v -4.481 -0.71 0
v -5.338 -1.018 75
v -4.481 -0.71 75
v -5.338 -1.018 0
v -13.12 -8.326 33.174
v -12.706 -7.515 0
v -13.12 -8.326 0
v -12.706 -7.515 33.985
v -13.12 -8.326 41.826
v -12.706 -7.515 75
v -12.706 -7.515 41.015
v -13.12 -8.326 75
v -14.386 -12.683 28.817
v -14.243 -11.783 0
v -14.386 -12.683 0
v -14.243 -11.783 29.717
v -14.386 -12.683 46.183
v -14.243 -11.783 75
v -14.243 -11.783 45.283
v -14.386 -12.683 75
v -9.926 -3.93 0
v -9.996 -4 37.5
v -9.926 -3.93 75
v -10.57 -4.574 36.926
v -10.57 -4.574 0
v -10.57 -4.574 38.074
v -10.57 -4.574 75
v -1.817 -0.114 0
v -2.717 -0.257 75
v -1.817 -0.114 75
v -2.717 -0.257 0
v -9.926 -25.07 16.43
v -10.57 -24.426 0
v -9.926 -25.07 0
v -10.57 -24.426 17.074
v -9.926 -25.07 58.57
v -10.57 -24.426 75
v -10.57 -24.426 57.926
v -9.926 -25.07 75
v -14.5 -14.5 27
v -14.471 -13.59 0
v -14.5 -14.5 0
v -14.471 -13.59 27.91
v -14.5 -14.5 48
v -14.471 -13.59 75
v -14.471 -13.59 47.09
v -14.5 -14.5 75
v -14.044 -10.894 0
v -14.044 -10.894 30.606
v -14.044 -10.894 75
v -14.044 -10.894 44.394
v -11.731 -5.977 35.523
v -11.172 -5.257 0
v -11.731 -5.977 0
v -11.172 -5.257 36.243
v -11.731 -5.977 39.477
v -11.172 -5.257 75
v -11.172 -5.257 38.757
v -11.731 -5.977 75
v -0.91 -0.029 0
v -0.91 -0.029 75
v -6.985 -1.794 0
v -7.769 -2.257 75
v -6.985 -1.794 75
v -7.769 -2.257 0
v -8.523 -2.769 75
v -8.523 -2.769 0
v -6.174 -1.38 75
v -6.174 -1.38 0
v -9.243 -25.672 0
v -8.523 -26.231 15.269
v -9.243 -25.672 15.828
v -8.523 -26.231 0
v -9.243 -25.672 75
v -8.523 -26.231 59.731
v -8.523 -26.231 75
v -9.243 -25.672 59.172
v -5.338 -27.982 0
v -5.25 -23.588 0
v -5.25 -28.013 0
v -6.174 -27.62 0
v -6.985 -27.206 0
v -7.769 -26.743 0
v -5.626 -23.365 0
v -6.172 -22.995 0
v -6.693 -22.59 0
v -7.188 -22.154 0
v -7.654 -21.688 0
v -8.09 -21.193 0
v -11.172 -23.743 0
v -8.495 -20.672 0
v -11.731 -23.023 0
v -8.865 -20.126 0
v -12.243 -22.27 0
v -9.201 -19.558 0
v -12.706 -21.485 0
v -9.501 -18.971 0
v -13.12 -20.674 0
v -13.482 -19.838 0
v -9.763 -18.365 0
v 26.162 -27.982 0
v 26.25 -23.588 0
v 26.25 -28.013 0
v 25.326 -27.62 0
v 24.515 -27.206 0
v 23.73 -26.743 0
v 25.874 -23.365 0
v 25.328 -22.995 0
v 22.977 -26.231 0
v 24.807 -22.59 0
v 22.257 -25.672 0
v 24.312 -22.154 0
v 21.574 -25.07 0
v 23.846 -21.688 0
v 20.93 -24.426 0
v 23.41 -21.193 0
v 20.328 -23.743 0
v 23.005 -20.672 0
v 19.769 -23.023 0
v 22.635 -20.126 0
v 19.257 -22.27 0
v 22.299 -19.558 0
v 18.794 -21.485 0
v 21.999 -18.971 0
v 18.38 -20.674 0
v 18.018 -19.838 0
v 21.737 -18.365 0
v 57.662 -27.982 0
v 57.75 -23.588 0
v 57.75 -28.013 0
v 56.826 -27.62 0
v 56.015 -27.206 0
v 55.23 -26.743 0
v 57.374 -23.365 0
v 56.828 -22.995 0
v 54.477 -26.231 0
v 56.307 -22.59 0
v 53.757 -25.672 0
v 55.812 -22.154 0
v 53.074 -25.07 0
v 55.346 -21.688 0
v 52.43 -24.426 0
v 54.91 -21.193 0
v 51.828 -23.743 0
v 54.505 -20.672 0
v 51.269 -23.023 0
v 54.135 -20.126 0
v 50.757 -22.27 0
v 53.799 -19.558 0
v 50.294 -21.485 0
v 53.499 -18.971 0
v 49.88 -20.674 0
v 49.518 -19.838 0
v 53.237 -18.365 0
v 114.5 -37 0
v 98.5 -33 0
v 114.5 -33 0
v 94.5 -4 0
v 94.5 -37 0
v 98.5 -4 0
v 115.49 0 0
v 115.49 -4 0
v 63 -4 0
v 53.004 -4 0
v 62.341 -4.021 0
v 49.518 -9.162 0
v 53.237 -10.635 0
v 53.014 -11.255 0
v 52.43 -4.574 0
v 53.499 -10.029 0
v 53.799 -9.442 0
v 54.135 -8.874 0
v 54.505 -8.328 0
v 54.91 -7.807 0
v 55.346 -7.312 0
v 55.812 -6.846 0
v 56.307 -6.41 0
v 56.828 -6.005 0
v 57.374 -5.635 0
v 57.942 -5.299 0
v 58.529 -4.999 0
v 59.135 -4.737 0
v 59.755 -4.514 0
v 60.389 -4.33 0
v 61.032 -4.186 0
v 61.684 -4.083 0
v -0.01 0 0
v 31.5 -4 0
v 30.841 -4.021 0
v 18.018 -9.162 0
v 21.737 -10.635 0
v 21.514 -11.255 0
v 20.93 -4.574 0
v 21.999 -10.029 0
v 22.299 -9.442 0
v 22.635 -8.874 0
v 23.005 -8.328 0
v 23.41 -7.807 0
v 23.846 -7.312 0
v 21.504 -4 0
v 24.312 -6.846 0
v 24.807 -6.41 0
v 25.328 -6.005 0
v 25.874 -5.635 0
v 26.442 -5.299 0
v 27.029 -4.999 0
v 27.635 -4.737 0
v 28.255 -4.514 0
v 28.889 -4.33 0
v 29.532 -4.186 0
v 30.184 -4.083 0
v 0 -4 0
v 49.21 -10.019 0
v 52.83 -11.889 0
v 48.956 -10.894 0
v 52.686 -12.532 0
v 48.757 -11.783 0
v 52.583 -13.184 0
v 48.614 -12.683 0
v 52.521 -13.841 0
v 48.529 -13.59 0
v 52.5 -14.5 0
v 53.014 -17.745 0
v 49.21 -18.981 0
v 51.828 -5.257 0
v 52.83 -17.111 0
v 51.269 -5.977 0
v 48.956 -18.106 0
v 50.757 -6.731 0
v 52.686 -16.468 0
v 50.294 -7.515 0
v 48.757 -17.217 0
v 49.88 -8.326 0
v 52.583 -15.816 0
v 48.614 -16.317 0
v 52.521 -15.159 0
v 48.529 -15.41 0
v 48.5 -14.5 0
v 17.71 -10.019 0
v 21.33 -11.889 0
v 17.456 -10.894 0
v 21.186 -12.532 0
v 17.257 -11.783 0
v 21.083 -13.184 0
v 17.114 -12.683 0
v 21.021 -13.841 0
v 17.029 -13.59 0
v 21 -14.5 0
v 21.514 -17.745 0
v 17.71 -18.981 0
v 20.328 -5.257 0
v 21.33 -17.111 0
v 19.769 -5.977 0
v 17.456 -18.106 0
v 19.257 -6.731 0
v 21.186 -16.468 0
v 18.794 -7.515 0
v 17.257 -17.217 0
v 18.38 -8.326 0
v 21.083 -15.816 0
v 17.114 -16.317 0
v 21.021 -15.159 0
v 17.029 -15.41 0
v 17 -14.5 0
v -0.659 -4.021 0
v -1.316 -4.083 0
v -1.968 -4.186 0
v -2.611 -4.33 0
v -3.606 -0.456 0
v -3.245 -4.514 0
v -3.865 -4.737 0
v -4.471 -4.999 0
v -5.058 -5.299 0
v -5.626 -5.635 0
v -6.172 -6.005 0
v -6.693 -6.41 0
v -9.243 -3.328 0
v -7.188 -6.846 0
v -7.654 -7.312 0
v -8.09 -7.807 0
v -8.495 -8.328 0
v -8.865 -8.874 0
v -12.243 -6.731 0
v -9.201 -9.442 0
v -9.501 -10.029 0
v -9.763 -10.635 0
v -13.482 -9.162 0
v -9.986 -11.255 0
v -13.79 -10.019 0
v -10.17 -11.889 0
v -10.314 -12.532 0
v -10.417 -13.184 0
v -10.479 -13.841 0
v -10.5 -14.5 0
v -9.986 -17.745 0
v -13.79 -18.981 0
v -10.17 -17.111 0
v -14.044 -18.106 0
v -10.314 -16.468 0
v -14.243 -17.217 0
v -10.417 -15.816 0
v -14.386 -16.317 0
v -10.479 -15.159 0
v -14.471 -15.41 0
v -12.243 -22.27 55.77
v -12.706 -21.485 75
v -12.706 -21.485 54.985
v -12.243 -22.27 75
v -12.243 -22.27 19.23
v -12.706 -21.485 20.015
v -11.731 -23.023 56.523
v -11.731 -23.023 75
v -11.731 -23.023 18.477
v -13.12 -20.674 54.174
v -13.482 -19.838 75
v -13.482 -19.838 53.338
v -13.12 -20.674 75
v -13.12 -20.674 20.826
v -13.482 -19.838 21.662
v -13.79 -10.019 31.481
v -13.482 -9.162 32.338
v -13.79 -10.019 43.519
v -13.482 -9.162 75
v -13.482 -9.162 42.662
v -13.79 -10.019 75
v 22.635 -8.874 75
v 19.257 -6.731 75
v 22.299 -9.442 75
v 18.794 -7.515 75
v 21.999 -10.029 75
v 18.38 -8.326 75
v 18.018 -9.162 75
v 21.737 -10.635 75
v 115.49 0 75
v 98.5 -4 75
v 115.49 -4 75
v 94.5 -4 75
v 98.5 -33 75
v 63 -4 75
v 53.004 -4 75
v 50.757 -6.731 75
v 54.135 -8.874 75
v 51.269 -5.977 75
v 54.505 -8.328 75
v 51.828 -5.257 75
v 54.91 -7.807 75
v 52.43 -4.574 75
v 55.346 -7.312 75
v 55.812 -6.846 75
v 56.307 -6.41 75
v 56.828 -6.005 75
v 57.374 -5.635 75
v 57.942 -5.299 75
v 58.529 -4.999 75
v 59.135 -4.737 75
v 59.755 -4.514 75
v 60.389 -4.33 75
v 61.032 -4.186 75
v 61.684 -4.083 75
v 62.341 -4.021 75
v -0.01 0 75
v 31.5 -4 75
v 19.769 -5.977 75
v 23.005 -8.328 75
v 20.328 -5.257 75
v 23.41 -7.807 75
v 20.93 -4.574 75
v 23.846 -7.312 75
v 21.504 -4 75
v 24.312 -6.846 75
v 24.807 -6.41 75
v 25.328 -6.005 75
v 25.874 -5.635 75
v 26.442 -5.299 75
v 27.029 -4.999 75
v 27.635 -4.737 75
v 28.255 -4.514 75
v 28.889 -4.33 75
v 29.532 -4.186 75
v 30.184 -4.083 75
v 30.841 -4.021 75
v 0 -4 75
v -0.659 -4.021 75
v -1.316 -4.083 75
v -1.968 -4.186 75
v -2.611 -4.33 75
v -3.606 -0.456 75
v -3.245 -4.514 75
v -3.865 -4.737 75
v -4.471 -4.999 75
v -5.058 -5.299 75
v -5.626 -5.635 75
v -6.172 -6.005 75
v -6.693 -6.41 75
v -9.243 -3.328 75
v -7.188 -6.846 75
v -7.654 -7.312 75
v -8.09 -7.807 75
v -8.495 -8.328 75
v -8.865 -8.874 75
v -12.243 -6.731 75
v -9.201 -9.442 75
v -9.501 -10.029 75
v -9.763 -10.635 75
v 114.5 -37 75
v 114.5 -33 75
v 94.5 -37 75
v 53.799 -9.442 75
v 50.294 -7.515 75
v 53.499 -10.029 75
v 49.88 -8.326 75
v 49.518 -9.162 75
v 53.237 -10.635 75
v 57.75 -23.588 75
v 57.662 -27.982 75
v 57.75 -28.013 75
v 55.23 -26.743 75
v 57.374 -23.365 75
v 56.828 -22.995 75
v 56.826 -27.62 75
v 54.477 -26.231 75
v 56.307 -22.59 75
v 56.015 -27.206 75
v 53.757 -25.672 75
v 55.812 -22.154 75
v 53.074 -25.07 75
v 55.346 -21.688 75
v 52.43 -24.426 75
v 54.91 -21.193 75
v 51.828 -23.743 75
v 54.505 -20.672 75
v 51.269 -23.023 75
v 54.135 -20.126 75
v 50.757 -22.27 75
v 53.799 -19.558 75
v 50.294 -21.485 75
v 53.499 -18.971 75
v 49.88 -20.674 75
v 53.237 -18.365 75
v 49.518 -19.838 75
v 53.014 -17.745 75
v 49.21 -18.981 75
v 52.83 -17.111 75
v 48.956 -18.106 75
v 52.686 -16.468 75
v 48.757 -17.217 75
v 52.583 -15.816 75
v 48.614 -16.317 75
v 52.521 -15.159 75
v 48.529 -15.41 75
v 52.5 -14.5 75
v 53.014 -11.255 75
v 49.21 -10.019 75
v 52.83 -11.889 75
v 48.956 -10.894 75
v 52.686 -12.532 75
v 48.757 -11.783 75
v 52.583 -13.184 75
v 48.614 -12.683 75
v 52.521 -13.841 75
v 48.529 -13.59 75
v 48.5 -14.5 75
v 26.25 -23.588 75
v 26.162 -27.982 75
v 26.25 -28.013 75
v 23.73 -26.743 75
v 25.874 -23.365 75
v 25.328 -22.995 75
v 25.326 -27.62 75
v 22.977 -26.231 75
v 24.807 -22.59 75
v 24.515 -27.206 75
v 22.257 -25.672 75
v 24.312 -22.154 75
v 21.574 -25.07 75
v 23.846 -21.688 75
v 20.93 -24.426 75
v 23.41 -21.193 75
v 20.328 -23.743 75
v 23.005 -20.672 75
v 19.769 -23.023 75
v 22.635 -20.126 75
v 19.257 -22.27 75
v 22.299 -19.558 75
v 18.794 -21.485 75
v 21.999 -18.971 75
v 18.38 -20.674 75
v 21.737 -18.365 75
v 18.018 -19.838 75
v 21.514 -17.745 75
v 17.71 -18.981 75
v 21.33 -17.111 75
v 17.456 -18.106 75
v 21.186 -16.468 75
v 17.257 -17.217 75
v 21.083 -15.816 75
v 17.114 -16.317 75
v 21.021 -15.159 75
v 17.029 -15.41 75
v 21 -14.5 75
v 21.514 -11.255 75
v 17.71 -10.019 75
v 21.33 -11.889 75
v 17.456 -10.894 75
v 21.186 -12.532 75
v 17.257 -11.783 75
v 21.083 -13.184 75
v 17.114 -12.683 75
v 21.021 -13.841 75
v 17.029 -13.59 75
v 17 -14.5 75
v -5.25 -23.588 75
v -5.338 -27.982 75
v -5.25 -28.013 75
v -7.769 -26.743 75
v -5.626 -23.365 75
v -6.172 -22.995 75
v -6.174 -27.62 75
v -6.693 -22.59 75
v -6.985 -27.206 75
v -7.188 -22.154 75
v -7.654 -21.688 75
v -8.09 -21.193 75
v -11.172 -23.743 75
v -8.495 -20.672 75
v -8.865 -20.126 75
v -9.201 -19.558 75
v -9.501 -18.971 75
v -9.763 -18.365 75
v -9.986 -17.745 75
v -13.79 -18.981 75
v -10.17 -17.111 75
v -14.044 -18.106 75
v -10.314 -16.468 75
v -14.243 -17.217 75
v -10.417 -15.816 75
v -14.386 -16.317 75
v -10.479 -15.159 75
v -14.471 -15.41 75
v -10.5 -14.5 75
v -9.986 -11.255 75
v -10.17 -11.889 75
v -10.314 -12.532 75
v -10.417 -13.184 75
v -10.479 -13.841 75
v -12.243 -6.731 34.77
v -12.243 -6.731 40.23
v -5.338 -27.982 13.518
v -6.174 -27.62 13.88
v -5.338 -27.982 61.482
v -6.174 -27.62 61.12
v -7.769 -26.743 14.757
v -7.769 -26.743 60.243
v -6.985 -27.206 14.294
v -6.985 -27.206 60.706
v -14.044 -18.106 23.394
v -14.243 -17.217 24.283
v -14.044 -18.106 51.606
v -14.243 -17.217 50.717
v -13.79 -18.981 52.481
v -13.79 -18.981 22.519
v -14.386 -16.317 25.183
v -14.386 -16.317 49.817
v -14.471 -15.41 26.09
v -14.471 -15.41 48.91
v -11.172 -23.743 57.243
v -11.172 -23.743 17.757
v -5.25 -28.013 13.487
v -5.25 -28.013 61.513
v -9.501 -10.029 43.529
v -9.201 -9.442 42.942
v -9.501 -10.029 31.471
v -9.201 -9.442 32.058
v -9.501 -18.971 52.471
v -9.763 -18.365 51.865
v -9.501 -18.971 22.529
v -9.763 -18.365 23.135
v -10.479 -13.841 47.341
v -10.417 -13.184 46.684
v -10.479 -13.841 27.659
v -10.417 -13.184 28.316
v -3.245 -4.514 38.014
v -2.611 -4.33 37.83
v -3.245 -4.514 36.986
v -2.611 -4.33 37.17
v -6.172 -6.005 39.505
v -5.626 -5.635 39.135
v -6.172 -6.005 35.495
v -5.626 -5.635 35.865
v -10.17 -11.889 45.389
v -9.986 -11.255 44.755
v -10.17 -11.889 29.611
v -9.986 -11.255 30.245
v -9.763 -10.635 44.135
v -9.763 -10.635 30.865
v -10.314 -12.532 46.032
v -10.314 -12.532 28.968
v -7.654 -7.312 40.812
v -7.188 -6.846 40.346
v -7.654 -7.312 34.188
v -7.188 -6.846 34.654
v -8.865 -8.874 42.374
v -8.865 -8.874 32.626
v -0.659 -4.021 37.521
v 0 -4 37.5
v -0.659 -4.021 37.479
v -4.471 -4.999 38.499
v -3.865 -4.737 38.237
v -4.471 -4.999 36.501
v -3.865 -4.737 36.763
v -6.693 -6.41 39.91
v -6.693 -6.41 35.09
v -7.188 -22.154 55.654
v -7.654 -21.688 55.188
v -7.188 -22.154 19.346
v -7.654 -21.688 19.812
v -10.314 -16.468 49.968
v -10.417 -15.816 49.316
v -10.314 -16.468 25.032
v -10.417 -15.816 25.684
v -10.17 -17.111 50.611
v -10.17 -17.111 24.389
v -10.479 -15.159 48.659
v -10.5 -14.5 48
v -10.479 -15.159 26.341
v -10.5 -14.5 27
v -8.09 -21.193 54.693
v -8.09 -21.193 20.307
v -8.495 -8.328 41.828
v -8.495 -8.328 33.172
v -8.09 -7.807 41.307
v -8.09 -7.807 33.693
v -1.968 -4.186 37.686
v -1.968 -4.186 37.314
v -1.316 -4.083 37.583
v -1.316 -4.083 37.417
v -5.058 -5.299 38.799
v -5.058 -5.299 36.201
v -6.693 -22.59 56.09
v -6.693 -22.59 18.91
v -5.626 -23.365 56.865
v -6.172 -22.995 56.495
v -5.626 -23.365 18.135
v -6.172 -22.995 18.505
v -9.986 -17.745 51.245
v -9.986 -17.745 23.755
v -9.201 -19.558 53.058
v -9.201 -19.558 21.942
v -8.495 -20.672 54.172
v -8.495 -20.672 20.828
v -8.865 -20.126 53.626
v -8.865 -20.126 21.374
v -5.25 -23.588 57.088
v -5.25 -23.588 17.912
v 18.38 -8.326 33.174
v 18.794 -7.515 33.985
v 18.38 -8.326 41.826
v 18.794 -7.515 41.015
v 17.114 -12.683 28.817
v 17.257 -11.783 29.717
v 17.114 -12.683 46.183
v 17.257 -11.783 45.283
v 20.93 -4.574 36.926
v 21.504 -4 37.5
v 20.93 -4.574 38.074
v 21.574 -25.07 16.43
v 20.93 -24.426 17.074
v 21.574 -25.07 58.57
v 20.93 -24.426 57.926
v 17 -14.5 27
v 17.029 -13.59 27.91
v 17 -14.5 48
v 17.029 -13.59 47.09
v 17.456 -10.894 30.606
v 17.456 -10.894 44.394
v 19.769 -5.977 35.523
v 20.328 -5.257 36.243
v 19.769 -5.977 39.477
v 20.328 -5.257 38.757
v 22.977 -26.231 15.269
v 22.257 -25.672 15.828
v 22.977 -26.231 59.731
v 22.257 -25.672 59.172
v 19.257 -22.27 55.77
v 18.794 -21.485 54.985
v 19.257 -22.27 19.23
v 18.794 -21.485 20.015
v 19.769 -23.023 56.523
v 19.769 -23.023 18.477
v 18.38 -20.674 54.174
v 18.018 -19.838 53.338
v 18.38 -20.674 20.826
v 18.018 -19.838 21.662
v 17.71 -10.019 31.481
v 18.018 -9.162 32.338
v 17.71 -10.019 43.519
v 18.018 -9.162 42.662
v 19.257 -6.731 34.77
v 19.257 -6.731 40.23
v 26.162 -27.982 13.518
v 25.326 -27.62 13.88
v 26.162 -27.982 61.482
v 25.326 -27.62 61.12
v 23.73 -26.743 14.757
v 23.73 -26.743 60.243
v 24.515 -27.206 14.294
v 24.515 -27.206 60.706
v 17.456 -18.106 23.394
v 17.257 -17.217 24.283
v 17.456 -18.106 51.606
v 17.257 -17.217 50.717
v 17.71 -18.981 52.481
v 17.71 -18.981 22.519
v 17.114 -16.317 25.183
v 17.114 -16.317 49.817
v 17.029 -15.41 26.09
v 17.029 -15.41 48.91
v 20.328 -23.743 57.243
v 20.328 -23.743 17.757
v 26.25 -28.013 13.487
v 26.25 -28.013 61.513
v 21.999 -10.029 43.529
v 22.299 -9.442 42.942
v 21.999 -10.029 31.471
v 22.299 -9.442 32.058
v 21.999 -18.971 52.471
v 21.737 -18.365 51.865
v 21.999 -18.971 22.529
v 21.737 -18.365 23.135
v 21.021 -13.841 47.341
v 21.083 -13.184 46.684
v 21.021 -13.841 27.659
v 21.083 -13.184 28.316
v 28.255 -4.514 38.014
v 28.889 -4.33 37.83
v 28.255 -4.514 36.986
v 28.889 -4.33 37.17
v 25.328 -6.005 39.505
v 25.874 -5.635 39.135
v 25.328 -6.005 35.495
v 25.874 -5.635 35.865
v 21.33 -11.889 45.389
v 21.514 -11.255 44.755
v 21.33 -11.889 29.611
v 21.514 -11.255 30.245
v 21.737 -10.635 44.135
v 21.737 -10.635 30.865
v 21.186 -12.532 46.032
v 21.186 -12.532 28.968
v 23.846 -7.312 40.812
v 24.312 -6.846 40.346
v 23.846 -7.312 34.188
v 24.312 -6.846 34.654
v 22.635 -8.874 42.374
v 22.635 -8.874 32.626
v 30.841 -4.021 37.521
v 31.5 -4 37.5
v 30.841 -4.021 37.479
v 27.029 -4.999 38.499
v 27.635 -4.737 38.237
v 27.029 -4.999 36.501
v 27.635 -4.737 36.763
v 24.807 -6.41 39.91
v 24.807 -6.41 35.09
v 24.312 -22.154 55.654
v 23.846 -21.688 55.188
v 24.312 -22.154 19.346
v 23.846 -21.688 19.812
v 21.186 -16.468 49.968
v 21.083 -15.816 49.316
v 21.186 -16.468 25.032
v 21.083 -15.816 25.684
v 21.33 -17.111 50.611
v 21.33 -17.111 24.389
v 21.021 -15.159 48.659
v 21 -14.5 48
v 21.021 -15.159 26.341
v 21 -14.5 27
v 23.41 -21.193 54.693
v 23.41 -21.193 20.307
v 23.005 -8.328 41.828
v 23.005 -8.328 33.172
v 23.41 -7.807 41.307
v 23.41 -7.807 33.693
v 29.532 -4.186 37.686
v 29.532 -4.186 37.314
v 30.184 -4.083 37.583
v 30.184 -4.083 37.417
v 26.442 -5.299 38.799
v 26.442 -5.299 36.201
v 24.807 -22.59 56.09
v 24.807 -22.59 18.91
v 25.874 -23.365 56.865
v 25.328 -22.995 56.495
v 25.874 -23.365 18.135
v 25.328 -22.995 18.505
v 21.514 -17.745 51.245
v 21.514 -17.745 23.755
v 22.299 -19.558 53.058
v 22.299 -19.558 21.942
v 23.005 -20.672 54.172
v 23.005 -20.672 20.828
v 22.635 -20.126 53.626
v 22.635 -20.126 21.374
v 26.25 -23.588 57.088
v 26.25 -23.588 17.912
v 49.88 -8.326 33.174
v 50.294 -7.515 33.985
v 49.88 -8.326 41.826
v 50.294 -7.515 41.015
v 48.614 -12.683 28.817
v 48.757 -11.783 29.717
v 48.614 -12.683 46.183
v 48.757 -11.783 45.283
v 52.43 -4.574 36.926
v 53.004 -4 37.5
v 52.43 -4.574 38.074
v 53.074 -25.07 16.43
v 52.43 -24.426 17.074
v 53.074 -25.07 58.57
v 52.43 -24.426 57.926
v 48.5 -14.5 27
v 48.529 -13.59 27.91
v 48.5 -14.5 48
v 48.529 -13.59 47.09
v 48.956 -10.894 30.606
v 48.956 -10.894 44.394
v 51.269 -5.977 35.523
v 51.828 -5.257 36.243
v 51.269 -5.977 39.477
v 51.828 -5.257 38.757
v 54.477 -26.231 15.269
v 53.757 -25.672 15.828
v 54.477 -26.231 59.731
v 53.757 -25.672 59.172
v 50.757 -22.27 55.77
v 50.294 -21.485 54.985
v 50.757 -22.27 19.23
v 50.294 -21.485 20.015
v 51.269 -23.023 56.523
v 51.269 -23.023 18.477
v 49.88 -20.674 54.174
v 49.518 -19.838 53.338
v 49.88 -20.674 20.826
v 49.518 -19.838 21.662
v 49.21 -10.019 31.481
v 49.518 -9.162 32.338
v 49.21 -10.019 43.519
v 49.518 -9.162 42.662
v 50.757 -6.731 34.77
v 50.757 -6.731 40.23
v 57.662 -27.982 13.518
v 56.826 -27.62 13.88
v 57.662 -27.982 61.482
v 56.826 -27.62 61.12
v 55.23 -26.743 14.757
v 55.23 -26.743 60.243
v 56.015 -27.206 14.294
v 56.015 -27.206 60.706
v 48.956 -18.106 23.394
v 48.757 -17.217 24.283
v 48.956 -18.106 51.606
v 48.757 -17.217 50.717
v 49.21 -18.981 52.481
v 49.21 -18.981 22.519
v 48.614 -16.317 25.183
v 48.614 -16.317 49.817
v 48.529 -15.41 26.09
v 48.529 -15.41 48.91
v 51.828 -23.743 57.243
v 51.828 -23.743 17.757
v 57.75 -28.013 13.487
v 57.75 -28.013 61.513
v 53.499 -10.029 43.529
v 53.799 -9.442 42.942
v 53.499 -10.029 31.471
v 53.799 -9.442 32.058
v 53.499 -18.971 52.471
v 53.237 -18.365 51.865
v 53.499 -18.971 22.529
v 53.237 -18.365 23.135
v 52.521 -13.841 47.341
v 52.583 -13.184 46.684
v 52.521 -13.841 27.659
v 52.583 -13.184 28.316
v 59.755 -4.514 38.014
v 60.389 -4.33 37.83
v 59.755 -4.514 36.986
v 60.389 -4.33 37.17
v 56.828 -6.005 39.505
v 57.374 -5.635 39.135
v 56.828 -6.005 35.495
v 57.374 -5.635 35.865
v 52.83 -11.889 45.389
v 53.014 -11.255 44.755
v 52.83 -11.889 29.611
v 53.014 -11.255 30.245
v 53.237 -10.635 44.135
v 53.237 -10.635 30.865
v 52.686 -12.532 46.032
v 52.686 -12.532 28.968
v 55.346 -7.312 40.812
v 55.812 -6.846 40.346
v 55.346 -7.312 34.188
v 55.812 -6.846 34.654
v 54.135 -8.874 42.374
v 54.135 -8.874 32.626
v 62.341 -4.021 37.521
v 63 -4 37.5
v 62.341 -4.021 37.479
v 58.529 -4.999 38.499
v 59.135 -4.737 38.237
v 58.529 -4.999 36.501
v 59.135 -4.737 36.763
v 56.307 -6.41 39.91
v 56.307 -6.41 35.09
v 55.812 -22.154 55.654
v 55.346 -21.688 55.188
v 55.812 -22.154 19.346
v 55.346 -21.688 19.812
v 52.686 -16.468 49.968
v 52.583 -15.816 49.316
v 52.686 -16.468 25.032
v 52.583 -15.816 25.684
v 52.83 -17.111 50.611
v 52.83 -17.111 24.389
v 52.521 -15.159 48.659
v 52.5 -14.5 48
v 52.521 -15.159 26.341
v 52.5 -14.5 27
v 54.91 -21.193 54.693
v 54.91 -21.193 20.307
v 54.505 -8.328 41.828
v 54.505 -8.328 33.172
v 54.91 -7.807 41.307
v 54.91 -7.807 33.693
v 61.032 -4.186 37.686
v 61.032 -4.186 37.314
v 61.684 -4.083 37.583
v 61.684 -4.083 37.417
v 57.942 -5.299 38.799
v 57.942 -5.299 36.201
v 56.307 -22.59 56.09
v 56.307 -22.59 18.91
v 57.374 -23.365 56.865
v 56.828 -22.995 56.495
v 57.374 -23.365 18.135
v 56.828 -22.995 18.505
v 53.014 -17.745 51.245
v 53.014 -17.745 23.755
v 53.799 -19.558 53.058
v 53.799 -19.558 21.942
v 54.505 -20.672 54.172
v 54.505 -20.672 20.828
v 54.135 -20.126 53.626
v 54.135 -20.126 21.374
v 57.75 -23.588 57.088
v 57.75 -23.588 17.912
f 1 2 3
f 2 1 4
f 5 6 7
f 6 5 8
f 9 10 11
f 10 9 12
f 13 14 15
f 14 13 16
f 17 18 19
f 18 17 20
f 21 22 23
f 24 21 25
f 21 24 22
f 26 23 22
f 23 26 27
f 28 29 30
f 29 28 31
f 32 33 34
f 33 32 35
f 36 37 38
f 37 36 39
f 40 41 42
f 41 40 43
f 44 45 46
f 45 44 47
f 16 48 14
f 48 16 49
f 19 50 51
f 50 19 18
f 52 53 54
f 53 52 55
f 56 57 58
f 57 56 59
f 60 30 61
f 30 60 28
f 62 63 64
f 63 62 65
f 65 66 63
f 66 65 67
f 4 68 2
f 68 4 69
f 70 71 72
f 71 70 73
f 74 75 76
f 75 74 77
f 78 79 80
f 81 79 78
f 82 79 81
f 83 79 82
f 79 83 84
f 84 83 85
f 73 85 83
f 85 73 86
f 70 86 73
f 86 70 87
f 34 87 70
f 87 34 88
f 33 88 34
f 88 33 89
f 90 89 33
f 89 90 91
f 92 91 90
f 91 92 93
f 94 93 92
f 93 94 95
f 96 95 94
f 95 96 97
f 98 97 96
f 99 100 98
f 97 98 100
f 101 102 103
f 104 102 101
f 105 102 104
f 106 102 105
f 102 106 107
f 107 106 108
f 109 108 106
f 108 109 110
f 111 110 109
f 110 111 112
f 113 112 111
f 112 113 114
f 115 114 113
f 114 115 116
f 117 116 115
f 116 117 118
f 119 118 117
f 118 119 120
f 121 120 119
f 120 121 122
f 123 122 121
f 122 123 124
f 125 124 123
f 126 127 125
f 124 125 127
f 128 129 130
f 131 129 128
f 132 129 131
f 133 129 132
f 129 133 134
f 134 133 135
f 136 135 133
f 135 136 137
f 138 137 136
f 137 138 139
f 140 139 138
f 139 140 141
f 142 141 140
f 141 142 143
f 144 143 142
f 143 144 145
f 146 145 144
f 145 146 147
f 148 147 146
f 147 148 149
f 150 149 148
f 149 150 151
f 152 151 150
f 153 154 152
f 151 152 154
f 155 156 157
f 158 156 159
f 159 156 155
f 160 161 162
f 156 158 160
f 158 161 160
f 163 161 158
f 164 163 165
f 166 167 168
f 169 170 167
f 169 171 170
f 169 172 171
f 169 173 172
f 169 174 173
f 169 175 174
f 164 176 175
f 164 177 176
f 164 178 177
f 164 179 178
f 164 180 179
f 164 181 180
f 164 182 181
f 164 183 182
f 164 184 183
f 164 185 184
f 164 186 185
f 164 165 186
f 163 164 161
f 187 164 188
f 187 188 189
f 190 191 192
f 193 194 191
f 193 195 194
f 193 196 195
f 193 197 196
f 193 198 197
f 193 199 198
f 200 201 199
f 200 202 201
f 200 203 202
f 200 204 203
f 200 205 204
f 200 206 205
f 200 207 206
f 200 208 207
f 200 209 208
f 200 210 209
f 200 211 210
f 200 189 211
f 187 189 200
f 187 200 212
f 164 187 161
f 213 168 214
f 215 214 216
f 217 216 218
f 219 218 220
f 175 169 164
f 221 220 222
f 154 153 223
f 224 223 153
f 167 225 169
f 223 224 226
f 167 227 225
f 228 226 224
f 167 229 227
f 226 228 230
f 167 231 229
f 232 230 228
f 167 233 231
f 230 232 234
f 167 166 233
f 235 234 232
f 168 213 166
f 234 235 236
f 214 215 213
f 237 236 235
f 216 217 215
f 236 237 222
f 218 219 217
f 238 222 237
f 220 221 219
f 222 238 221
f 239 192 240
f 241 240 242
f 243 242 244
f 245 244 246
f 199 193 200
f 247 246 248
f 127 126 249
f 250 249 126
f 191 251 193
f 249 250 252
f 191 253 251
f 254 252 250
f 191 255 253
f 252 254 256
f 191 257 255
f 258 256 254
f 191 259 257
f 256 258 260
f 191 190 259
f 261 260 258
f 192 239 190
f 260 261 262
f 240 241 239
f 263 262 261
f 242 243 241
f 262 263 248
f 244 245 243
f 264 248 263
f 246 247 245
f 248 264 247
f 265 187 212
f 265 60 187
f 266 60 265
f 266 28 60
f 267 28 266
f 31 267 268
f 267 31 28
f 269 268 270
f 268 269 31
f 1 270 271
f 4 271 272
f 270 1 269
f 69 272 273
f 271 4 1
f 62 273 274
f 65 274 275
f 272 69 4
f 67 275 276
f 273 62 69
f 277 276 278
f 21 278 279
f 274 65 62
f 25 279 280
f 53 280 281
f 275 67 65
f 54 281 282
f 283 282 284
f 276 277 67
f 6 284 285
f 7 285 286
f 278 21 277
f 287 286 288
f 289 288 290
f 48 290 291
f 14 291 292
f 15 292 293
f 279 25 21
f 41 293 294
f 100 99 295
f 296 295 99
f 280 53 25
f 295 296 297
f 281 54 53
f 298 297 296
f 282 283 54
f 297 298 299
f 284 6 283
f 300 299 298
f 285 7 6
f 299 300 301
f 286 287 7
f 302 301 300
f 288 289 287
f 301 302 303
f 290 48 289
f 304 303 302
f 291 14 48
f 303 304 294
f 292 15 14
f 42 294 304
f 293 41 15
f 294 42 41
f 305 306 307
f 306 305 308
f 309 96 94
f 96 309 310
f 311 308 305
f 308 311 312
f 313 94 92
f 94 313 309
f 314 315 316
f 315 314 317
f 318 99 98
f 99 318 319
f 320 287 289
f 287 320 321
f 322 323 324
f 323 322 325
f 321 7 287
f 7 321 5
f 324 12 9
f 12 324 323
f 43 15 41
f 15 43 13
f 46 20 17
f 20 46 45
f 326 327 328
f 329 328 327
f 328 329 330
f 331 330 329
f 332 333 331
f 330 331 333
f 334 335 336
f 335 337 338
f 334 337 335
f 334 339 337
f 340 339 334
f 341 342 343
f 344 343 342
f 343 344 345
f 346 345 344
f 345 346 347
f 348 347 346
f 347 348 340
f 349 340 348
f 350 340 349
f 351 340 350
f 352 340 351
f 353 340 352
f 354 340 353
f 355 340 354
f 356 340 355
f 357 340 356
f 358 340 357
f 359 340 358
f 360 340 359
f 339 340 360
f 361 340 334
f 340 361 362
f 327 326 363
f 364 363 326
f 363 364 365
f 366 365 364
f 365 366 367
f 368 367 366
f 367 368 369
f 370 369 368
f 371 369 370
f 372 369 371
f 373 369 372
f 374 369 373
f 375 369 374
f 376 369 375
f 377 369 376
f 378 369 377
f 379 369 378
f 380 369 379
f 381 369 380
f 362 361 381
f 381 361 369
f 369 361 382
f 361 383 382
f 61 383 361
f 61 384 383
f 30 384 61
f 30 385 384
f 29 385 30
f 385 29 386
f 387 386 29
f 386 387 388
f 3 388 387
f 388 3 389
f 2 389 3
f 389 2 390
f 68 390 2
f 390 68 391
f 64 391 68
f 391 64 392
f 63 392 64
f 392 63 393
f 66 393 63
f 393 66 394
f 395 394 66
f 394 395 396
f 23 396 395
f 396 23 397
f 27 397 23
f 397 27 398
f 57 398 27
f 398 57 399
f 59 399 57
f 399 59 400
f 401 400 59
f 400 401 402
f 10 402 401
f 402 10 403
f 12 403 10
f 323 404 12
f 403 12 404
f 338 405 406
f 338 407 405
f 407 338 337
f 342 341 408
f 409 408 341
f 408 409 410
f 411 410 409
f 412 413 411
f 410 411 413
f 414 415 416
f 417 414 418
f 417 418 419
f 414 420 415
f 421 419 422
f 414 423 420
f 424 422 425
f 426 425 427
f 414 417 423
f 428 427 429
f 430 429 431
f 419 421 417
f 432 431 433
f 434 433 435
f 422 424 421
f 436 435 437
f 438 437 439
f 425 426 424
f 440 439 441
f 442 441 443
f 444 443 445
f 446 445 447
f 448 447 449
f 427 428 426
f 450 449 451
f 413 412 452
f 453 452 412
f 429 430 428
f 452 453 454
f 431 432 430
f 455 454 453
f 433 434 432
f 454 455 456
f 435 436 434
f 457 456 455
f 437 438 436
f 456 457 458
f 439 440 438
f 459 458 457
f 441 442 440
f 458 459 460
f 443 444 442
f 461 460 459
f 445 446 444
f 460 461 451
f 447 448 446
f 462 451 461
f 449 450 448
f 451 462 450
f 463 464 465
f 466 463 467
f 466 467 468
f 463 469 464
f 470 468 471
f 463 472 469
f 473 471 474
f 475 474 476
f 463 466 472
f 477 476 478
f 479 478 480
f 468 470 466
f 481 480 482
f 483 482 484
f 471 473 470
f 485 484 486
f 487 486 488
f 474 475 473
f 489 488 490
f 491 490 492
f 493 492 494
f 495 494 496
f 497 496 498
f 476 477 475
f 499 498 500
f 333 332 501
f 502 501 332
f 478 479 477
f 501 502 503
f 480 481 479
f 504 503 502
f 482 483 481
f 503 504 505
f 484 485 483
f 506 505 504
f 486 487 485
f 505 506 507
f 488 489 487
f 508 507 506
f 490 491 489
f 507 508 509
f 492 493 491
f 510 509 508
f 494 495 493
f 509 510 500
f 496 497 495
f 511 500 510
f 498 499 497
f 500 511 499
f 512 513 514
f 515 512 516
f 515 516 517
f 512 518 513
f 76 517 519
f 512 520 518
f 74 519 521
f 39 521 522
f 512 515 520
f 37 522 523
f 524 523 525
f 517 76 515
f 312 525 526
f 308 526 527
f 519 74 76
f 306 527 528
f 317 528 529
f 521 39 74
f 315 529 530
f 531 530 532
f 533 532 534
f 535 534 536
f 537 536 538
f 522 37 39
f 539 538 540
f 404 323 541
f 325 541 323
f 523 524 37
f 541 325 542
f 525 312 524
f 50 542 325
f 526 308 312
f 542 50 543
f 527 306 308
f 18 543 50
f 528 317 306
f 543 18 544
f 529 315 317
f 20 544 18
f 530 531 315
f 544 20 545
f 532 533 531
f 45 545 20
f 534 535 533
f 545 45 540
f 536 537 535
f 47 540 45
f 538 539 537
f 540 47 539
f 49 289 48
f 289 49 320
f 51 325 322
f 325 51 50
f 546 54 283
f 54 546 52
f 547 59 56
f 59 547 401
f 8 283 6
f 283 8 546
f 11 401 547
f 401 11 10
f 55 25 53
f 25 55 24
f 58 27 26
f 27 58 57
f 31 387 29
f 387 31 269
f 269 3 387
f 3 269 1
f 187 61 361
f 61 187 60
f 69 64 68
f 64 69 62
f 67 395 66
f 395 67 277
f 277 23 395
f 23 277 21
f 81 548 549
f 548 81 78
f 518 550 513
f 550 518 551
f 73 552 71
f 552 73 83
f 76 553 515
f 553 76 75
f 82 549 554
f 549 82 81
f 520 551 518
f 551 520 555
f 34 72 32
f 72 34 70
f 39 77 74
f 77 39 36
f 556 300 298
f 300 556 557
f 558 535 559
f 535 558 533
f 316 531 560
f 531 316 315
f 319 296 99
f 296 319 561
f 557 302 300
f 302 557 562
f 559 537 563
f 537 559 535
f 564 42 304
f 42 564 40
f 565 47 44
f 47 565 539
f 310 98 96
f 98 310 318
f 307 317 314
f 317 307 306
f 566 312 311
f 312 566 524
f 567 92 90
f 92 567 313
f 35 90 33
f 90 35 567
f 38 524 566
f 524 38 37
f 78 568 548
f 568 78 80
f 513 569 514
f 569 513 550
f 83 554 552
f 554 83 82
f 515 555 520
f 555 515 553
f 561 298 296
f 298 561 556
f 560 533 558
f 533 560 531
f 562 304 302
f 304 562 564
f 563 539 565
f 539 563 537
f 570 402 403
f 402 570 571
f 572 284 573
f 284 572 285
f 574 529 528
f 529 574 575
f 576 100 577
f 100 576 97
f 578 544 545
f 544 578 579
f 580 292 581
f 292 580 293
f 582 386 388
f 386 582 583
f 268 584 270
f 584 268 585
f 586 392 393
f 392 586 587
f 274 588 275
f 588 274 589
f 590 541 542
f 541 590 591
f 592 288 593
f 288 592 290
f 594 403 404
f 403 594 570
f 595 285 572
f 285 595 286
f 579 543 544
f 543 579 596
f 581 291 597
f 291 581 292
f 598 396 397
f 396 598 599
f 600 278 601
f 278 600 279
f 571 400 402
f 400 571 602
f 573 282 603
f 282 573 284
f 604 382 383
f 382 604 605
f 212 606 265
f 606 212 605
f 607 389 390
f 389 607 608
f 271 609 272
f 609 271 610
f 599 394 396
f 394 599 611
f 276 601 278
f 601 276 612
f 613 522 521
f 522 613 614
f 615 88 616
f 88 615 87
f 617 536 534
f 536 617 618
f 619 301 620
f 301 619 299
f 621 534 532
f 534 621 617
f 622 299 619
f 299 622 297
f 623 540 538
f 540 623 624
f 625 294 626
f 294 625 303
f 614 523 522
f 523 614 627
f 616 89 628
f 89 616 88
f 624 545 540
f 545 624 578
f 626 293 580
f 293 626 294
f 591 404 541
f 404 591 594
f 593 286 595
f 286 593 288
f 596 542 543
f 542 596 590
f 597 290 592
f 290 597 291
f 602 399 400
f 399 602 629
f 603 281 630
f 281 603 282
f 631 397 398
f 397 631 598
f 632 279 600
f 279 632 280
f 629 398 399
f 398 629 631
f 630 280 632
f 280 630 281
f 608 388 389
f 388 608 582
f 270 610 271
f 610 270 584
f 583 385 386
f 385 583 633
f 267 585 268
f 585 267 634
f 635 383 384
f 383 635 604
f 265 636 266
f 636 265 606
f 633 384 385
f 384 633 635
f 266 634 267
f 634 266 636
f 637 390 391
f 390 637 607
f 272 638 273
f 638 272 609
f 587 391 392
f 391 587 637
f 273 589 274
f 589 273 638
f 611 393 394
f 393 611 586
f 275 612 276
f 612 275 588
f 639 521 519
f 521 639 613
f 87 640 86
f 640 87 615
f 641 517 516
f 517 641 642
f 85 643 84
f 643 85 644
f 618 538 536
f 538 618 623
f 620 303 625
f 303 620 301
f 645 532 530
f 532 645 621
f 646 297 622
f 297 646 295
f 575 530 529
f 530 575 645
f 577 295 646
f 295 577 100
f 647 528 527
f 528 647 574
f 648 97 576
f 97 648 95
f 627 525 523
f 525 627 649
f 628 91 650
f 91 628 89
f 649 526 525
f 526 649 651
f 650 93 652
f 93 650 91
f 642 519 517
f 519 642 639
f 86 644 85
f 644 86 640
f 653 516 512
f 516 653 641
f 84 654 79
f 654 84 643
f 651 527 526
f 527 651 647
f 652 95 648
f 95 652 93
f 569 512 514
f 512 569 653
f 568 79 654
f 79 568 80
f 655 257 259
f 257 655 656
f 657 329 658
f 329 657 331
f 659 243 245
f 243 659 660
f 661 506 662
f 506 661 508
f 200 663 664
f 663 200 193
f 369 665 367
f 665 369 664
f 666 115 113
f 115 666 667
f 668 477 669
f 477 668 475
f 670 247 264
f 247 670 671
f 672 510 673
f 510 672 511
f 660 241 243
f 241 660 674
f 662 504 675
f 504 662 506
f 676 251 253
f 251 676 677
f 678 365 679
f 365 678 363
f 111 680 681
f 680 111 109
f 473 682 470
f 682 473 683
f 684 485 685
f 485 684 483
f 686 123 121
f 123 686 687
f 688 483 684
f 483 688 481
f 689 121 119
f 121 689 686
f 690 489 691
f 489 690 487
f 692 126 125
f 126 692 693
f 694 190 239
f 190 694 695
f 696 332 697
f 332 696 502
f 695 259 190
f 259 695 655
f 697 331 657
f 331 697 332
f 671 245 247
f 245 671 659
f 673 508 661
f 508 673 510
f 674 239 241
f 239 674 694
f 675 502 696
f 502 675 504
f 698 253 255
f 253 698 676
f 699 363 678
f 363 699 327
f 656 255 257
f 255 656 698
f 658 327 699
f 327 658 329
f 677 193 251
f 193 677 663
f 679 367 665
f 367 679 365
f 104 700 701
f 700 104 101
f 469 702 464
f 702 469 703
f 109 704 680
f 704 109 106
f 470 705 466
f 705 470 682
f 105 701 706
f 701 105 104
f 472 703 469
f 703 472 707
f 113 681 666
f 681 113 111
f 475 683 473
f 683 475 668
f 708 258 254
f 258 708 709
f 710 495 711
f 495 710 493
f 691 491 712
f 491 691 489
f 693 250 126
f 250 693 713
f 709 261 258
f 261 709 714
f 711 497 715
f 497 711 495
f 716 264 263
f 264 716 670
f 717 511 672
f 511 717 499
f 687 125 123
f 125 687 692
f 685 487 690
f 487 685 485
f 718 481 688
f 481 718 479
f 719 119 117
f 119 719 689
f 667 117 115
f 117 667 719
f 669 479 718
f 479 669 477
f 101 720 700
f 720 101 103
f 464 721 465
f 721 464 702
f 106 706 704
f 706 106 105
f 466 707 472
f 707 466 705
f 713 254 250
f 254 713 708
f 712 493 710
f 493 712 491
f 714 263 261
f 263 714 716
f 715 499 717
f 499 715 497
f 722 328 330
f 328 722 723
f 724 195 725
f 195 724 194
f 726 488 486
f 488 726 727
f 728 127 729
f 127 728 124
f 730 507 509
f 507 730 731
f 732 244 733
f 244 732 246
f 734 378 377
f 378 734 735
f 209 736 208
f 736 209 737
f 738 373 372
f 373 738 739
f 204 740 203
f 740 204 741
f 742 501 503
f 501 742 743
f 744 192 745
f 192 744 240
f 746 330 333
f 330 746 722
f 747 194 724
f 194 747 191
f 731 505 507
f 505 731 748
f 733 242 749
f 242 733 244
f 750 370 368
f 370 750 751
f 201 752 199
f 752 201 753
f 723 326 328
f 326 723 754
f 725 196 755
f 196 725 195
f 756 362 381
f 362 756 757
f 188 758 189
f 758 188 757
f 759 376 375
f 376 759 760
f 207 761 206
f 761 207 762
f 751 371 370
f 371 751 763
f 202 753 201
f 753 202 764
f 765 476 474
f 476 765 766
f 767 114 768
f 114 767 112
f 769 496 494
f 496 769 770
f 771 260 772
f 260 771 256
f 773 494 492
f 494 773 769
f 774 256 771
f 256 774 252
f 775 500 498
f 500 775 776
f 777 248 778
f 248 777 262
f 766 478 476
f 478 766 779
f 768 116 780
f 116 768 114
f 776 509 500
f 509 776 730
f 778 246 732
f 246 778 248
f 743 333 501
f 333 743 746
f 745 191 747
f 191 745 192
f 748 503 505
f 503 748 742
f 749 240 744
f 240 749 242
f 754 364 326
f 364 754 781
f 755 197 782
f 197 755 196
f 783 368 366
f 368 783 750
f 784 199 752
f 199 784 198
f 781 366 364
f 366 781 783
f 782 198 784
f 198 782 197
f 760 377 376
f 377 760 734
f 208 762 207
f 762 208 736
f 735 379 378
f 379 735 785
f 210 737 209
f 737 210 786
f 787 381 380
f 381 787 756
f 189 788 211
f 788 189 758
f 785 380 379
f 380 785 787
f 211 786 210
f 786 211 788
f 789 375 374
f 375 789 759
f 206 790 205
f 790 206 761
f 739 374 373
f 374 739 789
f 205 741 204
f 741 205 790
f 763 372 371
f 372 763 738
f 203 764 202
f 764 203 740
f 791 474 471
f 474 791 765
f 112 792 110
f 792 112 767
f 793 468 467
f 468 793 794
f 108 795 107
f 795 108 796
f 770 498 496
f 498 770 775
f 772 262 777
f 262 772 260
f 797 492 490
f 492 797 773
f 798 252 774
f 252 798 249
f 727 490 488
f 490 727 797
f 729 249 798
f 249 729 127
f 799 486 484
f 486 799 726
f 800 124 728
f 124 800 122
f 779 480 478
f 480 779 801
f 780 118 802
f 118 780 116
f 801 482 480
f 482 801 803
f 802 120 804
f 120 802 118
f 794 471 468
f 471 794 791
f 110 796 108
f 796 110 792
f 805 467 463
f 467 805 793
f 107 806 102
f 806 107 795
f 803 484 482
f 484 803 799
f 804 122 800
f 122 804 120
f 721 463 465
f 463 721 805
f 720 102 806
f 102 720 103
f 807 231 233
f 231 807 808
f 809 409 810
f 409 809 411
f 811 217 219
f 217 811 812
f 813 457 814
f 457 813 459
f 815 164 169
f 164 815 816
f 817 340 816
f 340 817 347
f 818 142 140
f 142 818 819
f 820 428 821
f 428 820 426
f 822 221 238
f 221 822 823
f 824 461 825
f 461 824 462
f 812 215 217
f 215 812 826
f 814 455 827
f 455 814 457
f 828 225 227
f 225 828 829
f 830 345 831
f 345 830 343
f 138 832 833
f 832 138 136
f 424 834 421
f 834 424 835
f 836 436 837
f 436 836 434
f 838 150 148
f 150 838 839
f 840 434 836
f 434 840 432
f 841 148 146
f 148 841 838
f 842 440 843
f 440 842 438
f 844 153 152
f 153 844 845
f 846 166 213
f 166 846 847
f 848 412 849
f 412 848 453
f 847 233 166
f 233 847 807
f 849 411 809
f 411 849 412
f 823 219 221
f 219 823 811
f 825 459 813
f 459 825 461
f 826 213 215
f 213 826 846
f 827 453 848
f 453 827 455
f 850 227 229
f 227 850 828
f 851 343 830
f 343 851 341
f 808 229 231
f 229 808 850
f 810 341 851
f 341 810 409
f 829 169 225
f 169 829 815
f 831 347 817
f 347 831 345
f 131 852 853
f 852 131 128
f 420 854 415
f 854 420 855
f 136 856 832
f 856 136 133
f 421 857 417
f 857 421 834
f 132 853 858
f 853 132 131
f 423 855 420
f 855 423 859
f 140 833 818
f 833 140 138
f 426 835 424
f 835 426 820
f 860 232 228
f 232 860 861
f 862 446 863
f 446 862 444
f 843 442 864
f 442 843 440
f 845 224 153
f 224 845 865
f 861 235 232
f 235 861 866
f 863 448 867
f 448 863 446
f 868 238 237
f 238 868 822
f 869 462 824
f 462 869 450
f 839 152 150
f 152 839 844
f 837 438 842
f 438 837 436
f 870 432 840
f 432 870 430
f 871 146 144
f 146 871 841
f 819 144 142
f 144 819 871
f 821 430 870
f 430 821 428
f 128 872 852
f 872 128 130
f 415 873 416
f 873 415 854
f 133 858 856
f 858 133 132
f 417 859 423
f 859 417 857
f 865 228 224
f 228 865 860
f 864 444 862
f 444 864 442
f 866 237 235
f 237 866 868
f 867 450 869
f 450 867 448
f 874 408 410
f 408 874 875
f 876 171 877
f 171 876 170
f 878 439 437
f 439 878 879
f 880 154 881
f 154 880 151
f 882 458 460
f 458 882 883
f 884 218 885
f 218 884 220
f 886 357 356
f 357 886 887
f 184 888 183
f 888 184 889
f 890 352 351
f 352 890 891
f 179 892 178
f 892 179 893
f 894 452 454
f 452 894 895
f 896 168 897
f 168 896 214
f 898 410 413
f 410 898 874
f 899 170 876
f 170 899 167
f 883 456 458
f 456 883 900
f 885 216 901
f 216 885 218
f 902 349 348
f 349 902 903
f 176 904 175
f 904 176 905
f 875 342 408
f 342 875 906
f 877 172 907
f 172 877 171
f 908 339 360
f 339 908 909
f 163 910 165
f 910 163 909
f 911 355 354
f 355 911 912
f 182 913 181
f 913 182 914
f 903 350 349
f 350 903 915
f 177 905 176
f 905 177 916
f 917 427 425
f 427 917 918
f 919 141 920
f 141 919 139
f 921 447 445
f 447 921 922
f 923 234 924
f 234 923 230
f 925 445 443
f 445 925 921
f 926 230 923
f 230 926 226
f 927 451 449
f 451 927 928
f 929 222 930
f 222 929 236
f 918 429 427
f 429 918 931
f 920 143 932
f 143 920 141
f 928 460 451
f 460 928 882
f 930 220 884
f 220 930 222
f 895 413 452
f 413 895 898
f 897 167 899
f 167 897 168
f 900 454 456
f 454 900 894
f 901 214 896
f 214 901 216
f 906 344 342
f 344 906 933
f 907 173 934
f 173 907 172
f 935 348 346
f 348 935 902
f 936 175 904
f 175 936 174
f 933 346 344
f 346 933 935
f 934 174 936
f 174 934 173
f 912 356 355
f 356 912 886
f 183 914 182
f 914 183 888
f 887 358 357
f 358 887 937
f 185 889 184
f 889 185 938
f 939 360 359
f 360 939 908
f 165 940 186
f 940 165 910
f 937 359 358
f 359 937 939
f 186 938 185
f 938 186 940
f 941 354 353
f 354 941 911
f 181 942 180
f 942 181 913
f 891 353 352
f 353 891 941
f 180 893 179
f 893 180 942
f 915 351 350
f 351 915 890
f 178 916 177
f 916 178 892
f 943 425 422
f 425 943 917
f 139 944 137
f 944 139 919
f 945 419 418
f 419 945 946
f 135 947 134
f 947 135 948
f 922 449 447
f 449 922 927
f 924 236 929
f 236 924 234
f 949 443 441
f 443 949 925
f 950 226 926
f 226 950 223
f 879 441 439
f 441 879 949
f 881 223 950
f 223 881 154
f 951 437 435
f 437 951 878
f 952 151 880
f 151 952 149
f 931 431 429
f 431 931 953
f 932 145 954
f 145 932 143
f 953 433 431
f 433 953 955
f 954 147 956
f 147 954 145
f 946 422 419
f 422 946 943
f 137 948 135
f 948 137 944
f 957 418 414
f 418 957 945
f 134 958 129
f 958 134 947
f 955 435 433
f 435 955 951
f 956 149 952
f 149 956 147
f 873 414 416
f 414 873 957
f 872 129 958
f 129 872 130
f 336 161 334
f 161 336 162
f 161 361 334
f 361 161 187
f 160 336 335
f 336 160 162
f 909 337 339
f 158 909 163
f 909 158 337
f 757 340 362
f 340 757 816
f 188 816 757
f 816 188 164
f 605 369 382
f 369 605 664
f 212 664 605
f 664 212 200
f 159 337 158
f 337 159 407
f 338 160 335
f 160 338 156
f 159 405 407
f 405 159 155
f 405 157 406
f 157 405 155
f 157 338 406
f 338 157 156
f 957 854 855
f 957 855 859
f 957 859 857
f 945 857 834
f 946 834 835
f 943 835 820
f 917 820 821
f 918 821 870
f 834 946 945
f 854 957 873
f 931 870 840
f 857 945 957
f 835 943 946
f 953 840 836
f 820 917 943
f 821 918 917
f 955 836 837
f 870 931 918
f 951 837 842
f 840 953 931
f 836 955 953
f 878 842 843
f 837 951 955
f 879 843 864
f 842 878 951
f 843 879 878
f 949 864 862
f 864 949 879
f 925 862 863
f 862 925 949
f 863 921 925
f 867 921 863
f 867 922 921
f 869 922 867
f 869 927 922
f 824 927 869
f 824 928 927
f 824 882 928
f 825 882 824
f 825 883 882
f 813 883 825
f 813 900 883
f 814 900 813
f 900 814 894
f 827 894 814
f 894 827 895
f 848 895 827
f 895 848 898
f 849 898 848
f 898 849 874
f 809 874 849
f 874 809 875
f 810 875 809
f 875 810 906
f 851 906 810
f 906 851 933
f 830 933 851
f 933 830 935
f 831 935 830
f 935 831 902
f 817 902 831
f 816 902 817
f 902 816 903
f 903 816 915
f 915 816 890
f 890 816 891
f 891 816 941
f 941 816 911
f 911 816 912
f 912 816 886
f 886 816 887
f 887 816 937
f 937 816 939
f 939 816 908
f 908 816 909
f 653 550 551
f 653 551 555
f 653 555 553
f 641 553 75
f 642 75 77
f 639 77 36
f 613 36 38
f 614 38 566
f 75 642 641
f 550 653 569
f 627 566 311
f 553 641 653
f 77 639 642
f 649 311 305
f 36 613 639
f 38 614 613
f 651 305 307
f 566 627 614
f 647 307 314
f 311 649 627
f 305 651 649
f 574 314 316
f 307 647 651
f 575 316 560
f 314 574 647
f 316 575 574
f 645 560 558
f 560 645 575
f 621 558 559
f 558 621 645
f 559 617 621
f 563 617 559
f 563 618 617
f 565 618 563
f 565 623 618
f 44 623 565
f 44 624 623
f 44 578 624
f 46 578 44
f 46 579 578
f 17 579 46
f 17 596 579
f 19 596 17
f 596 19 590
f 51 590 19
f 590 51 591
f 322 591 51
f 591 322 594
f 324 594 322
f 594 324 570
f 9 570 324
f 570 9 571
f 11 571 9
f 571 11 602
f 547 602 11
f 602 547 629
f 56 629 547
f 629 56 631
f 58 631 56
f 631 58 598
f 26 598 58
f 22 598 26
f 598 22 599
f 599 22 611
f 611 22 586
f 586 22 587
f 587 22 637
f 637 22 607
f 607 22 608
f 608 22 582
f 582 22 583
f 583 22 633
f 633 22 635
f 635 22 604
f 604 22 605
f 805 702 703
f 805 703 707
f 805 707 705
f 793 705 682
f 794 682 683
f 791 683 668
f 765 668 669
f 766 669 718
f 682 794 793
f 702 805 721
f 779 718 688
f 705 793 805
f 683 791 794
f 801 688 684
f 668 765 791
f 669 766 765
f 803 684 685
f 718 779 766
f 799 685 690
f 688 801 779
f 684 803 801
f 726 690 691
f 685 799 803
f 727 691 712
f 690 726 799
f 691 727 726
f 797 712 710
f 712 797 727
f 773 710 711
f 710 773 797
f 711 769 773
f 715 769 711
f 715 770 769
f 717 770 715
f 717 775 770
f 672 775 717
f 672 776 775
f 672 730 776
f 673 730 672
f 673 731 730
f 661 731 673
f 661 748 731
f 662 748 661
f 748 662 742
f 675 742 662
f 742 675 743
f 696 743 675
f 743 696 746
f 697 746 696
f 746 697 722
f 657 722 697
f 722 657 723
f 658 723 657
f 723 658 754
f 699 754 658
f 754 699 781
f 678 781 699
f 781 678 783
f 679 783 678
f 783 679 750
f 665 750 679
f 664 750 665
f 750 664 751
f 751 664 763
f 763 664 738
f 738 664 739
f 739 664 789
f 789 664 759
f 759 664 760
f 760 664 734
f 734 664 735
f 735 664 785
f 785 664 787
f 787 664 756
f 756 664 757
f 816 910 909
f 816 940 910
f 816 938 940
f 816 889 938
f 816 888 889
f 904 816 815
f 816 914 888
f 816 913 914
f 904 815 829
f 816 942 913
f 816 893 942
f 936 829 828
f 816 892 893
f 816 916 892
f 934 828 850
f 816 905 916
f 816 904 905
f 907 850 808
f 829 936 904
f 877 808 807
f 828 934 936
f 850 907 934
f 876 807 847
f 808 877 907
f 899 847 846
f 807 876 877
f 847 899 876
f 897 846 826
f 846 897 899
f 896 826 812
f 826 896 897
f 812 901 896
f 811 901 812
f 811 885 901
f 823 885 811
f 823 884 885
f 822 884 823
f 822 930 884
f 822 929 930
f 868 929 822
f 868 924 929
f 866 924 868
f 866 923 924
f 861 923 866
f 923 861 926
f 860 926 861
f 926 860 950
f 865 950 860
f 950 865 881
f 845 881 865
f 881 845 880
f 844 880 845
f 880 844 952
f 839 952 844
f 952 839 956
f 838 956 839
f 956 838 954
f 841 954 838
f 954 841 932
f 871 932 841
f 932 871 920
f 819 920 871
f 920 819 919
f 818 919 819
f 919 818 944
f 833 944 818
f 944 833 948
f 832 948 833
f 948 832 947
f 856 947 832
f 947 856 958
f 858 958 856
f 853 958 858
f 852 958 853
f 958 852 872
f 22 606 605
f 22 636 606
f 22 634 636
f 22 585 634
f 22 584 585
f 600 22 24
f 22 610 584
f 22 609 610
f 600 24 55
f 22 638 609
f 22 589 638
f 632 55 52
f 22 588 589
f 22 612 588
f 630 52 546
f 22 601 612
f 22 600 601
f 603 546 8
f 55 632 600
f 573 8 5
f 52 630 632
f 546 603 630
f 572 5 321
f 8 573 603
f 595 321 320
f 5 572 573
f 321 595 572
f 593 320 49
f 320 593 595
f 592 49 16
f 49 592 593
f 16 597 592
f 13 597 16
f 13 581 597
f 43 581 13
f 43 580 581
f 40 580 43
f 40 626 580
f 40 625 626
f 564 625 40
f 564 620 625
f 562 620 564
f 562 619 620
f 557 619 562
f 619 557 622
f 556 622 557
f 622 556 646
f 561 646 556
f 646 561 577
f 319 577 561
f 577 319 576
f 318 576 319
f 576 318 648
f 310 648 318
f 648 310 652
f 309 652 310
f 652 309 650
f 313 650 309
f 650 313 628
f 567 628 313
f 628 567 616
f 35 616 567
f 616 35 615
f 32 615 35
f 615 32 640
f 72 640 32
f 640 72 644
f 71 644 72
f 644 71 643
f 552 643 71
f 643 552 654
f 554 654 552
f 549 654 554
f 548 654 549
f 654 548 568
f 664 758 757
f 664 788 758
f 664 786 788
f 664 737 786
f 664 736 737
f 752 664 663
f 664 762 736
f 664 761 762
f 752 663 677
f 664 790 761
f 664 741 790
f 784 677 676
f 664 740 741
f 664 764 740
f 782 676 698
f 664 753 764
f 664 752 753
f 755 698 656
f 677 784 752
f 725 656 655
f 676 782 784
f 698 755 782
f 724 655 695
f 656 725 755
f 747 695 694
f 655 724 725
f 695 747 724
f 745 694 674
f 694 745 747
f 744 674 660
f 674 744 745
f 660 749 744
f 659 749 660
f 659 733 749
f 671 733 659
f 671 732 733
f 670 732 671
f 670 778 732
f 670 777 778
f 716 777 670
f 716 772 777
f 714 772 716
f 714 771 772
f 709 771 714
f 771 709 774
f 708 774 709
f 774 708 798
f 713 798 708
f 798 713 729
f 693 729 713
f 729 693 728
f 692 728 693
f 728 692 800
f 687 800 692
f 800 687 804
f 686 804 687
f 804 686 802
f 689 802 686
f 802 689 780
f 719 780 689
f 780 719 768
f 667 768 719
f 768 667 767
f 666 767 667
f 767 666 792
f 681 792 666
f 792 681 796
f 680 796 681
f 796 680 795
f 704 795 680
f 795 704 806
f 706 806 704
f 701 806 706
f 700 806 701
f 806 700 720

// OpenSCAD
//=============================================================================
// marker-rack.scad
//
// Hang markers an an eraser.
//=============================================================================
// Written in 2017 by Patrick Barrett
//
// To the extent possible under law, the author(s) have dedicated all copyright
// and related and neighboring rights to this work to the public domain
// worldwide. This work is distributed without any warranty.
//
// See <http://creativecommons.org/publicdomain/zero/1.0/> for full dedication.
//=============================================================================

//=============================================================================
// dimensions
//=============================================================================

w_body = 75;

wall = 4;

d_marker = 21;

h_eraser = 33;

$fn = 100;

some = 10;
alot = 250;
abit = 0.01;

//=============================================================================
// main soild
//=============================================================================

module round_cube(sides, r = 0, center = false) {
    translate(center ? [0,0,0] : [r,r,r])
    minkowski() {
        cube([sides[0]-r, sides[1]-r, sides[2]-r], center = center);
        sphere(r = r);
    }
}

module marker_dish() {
    translate([0,-(d_marker/2 + wall),0])
    difference() {
        cylinder(d = d_marker + 2*wall, h = w_body);
        
        translate([0,0,-some/2])
        cylinder(d = d_marker, h = w_body + some);
        
        translate([-d_marker*0.25,-d_marker/2 -some + 1,-some/2])
        cube([d_marker + some, d_marker/2 + some, w_body + some]);
        
        translate([0,0,-some/2])
        cube([d_marker, d_marker, w_body + some]);
    }
}

difference() {
    union() {
        translate([-abit, -wall, 0])
        cube([5.5*d_marker, wall, w_body]);
        
        marker_dish();

        translate([1.5*d_marker,0,0])
        marker_dish();

        translate([3*d_marker,0,0])
        marker_dish();
        
        translate([4.5*d_marker, -h_eraser-wall, 0])
        cube([wall, h_eraser, w_body]);
        
        translate([4.5*d_marker, -h_eraser-wall, 0])
        cube([20, wall, w_body]);
    }
    
    // cutout
    translate([-d_marker,-wall,w_body/2])
    rotate([-45+180,0,0])
    cube([d_marker*4, alot, alot]);
}
